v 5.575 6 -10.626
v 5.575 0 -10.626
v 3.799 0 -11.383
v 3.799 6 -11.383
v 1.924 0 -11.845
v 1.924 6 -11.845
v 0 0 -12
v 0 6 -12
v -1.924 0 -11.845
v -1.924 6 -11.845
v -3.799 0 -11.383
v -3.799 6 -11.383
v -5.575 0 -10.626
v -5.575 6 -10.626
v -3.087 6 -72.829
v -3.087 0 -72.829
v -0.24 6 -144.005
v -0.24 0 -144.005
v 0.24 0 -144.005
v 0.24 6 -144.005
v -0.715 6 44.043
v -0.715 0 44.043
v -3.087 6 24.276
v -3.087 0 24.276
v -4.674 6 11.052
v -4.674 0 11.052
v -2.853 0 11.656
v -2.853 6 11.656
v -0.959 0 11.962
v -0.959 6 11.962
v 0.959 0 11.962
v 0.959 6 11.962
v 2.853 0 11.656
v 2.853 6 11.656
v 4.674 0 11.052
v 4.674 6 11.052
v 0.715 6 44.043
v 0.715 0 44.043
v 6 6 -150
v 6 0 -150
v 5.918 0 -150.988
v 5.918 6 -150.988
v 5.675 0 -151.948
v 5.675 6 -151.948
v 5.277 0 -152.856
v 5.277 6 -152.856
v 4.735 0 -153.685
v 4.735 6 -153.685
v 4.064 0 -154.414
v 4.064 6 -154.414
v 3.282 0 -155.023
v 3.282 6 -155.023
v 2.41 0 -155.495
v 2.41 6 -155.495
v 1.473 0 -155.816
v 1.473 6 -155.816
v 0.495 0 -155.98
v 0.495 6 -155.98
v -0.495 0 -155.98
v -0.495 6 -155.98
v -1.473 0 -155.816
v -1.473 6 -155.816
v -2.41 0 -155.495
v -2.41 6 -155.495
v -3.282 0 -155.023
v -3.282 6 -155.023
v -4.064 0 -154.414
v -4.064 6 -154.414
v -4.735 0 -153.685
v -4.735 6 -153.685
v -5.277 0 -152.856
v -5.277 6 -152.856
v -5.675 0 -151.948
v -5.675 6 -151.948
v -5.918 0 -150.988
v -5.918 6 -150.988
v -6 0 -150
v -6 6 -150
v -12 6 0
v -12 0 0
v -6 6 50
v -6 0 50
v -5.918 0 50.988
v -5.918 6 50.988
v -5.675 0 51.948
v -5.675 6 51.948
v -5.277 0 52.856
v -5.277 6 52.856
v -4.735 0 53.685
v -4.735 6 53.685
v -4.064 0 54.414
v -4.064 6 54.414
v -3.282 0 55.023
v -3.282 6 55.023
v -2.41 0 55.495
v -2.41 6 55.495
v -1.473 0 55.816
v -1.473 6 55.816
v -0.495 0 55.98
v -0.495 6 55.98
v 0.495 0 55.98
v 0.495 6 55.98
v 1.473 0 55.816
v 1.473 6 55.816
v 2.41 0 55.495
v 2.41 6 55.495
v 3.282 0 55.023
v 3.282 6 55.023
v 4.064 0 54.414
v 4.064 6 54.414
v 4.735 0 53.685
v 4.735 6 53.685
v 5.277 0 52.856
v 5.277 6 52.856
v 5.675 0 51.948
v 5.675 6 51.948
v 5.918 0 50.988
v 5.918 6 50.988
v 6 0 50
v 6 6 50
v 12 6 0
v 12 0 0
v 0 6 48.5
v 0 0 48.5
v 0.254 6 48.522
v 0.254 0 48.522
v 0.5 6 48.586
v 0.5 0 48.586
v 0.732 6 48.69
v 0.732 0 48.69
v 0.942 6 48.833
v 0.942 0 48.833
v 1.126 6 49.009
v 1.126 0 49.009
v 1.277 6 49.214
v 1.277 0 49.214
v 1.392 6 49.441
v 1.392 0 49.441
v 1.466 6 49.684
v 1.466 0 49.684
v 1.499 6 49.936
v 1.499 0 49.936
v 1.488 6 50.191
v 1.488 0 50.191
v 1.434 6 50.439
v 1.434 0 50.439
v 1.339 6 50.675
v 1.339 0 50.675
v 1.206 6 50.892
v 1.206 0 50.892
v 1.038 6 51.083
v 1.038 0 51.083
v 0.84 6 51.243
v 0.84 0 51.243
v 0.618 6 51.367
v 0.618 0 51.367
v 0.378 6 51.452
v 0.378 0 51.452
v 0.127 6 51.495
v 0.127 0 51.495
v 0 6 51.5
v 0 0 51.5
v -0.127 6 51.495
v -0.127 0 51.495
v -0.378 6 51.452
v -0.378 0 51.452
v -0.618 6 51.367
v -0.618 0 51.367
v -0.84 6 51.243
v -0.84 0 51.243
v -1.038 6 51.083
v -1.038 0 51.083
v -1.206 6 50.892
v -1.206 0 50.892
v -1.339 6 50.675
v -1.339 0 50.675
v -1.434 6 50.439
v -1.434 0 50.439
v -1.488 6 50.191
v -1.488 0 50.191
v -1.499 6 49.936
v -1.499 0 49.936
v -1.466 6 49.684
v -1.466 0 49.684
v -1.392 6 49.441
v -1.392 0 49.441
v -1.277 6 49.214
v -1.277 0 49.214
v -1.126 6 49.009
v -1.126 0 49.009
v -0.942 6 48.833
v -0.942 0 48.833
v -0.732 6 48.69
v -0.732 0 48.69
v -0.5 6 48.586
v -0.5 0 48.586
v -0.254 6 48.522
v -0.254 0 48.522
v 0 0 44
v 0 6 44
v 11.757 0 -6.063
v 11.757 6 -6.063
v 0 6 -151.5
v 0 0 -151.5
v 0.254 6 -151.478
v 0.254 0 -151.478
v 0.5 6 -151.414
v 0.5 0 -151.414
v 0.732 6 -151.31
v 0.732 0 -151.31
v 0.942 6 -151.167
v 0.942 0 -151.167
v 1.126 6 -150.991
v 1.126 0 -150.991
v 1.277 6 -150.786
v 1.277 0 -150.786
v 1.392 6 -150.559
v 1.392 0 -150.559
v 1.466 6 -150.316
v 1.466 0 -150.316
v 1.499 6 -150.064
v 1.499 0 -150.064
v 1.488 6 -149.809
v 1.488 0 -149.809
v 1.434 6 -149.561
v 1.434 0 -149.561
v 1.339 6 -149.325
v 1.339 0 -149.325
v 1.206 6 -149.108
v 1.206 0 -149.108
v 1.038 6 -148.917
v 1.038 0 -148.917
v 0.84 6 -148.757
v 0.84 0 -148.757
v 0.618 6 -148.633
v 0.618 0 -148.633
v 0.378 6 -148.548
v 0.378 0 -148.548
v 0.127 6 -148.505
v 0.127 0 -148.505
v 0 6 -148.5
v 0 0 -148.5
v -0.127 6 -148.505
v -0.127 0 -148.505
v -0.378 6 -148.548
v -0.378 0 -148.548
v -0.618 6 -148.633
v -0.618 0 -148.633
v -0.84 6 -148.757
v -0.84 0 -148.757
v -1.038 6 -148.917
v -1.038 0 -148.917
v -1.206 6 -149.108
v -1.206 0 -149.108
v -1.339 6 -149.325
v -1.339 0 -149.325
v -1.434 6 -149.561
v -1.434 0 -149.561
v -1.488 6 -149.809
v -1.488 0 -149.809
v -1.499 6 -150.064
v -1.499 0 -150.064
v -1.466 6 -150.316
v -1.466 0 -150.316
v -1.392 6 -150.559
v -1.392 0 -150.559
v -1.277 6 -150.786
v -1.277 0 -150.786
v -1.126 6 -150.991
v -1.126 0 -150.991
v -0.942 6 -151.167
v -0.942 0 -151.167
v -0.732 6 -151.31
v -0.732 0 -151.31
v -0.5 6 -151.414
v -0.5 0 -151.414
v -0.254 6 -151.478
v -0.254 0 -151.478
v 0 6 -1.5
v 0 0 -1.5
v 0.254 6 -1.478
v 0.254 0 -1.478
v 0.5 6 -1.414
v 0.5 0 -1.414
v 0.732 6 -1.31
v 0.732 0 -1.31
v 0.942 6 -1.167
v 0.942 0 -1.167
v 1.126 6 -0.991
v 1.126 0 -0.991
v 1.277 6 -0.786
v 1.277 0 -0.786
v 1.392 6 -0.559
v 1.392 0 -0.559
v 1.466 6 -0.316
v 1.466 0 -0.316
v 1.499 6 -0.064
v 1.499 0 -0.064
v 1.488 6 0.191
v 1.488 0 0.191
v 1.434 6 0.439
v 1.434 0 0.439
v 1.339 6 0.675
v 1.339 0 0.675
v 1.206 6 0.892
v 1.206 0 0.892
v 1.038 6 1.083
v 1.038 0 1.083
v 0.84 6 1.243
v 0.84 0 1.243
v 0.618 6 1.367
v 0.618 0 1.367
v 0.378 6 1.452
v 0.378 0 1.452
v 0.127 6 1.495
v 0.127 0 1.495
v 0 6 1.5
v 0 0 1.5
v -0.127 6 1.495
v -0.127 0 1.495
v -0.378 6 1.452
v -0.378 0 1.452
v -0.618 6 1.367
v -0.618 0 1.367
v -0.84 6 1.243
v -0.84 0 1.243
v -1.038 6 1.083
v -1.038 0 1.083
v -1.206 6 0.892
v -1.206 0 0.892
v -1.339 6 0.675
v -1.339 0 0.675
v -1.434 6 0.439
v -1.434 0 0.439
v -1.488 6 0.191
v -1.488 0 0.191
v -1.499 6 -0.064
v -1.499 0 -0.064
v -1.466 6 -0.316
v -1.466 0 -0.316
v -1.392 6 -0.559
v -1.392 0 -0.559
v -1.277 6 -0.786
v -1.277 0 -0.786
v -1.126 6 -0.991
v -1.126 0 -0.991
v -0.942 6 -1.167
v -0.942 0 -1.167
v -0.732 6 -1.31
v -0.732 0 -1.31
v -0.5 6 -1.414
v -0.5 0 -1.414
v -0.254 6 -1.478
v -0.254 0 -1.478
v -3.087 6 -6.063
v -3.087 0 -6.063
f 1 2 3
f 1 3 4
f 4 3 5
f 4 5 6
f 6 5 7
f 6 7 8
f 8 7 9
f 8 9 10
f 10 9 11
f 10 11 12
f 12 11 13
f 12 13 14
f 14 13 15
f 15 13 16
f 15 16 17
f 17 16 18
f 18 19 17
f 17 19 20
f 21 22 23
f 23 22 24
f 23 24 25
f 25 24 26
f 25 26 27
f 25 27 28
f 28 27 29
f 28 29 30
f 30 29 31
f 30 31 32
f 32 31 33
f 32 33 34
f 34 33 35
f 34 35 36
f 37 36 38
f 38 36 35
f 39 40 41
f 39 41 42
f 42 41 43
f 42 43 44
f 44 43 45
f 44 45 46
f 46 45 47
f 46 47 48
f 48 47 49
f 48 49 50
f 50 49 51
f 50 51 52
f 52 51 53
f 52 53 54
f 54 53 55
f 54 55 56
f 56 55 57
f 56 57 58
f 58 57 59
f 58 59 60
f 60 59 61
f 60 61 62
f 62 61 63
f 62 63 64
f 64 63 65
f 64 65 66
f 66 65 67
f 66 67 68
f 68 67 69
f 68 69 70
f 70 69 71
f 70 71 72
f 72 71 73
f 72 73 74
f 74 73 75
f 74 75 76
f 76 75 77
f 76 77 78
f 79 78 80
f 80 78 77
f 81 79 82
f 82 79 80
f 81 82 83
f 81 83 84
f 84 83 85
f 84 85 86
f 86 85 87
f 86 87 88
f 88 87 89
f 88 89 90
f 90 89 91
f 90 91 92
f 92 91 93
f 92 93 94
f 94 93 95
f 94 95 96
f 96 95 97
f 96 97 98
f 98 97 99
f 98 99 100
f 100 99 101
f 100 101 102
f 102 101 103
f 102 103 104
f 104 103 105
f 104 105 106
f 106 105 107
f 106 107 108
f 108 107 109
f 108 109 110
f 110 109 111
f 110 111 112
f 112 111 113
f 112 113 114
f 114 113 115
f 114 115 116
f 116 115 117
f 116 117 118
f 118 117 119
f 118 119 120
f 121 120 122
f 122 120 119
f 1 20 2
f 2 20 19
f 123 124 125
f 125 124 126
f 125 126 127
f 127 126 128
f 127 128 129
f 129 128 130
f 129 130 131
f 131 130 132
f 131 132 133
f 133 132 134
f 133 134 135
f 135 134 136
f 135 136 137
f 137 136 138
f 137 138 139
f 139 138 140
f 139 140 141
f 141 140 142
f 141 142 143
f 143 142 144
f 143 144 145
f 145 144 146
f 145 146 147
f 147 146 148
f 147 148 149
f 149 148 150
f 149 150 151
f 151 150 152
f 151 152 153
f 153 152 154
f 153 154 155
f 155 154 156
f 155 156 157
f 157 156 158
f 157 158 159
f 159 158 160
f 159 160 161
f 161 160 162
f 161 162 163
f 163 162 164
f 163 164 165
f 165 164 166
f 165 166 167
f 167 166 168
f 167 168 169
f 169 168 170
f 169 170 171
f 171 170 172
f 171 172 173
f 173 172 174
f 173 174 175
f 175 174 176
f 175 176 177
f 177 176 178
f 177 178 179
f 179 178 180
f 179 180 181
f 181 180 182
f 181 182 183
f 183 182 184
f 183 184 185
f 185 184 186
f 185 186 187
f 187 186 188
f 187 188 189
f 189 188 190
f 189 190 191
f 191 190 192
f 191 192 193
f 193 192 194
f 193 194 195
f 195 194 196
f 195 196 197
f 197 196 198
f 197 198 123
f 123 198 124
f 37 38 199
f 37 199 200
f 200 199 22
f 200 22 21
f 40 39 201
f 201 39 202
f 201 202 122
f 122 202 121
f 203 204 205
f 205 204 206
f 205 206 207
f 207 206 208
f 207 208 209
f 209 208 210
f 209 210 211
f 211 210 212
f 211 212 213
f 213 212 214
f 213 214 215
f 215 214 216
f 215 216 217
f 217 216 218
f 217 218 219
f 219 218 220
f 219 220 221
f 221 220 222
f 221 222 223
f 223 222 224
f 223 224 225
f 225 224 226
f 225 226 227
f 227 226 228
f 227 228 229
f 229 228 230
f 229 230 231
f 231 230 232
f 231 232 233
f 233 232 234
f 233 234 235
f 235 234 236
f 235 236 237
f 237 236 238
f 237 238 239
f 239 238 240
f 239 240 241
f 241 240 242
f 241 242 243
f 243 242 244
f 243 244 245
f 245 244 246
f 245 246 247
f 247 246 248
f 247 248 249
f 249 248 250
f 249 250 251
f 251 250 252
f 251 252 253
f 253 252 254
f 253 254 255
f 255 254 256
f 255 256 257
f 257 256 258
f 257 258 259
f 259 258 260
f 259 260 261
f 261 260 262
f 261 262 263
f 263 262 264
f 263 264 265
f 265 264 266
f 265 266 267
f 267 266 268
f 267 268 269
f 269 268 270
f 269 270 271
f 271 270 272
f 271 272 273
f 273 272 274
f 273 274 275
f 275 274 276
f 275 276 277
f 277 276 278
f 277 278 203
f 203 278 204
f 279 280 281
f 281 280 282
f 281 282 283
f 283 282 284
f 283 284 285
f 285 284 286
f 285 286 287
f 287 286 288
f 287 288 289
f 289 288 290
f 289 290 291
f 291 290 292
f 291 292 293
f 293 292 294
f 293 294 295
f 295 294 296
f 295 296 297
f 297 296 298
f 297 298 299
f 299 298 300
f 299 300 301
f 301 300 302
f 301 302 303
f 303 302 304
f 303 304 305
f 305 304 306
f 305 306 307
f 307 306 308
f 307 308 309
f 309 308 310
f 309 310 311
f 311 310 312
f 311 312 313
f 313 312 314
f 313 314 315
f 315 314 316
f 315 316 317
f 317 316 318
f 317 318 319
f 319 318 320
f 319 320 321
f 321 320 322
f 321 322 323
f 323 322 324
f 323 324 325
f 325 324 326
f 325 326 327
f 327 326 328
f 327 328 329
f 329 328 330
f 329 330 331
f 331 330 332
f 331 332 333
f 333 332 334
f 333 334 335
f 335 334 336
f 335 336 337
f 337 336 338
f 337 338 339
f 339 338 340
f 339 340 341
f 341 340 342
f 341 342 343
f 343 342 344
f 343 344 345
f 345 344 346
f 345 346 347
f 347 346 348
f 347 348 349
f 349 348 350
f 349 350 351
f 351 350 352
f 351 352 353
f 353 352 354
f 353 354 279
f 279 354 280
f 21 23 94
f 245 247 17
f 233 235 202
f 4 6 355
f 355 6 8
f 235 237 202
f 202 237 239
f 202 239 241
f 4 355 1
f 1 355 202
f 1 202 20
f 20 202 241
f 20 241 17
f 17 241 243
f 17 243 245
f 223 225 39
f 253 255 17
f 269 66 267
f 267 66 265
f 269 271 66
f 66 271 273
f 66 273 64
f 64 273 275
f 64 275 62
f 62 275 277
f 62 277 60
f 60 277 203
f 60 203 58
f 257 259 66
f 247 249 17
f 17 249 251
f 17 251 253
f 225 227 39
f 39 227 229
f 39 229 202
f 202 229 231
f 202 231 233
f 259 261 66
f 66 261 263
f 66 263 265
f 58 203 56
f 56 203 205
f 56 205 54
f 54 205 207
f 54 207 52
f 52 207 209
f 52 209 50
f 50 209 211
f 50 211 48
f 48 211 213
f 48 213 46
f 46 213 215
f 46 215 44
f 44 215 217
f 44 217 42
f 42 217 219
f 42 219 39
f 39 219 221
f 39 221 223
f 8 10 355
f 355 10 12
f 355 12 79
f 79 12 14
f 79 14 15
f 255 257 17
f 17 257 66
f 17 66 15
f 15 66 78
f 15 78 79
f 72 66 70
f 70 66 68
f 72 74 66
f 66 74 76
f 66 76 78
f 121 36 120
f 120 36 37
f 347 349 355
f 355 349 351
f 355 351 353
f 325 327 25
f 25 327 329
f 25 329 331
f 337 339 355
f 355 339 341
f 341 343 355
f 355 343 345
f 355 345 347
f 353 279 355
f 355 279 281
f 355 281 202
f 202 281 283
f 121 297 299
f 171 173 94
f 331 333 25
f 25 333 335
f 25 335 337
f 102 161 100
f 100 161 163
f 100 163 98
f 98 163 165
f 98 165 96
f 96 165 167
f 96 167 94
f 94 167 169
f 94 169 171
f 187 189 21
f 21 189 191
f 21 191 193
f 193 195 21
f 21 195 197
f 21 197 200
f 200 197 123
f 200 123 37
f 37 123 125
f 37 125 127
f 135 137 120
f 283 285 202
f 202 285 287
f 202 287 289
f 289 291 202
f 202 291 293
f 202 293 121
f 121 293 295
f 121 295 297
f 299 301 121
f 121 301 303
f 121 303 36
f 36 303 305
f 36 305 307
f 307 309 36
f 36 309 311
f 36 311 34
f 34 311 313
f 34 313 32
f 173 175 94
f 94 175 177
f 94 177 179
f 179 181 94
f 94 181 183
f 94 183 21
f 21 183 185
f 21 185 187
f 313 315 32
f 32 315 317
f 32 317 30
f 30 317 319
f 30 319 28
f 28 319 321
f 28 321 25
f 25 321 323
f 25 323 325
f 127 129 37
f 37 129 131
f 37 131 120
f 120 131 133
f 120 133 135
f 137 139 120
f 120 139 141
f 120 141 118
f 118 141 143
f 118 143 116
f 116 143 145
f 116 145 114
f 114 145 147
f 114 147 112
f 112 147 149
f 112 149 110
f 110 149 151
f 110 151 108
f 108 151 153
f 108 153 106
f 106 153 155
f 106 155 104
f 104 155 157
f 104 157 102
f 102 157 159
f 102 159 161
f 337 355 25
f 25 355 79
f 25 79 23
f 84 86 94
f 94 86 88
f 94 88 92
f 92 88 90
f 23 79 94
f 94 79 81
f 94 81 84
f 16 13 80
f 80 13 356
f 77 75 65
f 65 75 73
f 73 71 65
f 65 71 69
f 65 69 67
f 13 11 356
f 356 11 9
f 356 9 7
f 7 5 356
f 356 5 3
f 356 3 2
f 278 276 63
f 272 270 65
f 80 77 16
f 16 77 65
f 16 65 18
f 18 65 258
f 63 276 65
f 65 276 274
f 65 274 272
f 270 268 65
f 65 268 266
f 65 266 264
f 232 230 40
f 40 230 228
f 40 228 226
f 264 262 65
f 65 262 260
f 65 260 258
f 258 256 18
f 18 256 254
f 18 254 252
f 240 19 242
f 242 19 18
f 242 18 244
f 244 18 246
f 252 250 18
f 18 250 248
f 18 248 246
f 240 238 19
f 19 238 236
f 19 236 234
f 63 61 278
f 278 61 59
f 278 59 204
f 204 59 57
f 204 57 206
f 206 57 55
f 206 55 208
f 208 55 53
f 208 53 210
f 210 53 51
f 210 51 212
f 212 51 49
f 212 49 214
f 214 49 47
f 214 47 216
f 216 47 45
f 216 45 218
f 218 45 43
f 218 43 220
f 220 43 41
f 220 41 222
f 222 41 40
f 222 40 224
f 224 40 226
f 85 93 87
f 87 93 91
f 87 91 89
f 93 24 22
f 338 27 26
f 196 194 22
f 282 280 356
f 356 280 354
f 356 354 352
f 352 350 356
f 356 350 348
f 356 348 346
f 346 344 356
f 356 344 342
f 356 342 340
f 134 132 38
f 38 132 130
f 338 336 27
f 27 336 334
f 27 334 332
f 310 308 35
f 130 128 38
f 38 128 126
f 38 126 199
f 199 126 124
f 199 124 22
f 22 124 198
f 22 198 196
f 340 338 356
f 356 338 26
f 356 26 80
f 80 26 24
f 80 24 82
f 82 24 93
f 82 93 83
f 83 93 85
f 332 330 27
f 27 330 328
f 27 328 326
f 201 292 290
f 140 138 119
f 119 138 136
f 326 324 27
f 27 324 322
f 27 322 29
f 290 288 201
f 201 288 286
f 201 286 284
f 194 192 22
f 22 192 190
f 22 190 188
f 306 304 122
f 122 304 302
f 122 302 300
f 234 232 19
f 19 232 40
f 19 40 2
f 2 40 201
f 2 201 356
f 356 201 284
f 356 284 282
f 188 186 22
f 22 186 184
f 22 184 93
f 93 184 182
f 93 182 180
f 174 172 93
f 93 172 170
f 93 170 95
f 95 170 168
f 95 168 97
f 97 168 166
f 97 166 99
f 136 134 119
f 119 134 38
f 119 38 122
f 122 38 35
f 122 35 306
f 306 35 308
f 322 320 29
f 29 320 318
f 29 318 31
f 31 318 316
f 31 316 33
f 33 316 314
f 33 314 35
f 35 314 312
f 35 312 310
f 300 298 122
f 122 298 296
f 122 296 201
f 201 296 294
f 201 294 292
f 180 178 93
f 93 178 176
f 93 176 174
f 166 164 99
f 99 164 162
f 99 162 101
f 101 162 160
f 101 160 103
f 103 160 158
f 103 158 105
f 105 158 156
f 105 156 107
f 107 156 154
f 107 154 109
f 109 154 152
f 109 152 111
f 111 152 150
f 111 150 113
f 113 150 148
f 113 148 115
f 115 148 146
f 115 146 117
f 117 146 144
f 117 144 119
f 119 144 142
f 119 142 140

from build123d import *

# Parameters (mm, degrees)
SKETCH1_R           = 1.5
BOSS_EXTRUDE4_DEPTH = 6


with BuildPart() as part:
    # Sketch1 → Boss-Extrude4 (new body)
    with BuildSketch(Plane(origin=(0, 0, 0), x_dir=(1, 0, 0), z_dir=(0, 1, 0))):
        with BuildLine():
            Line((12, 0), (6, 150))
            ThreePointArc((6, 150), (0, 156), (-6, 150))
            Line((-6, 150), (-12, 0))
            Line((-12, 0), (-6, -50))
            ThreePointArc((-6, -50), (0, -56), (6, -50))
            Line((6, -50), (12, 0))
        make_face()
        with Locations(Location((0, 0, 0), (0, 0, 270))):
            Circle(SKETCH1_R, mode=Mode.SUBTRACT)
        with BuildLine():
            Line((-0.714871324, -44.042738969), (-4.673707022, -11.05244148))
            ThreePointArc((-4.673707022, -11.05244148), (0, -12), (4.673707022, -11.05244148))
            Line((4.673707022, -11.05244148), (0.714871324, -44.042738969))
            ThreePointArc((0.714871324, -44.042738969), (0, -44), (-0.714871324, -44.042738969))
        make_face(mode=Mode.SUBTRACT)
        with BuildLine():
            Line((0.23980823, 144.004794248), (5.574944726, 10.626381854))
            ThreePointArc((5.574944726, 10.626381854), (0, 12), (-5.574944726, 10.626381854))
            Line((-5.574944726, 10.626381854), (-0.23980823, 144.004794248))
            ThreePointArc((-0.23980823, 144.004794248), (0, 144), (0.23980823, 144.004794248))
        make_face(mode=Mode.SUBTRACT)
        with Locations(Location((0, 150, 0), (0, 0, 270))):
            Circle(SKETCH1_R, mode=Mode.SUBTRACT)
        with Locations(Location((0, -50, 0), (0, 0, 270))):
            Circle(SKETCH1_R, mode=Mode.SUBTRACT)
    extrude(amount=BOSS_EXTRUDE4_DEPTH)


solid = part.part
